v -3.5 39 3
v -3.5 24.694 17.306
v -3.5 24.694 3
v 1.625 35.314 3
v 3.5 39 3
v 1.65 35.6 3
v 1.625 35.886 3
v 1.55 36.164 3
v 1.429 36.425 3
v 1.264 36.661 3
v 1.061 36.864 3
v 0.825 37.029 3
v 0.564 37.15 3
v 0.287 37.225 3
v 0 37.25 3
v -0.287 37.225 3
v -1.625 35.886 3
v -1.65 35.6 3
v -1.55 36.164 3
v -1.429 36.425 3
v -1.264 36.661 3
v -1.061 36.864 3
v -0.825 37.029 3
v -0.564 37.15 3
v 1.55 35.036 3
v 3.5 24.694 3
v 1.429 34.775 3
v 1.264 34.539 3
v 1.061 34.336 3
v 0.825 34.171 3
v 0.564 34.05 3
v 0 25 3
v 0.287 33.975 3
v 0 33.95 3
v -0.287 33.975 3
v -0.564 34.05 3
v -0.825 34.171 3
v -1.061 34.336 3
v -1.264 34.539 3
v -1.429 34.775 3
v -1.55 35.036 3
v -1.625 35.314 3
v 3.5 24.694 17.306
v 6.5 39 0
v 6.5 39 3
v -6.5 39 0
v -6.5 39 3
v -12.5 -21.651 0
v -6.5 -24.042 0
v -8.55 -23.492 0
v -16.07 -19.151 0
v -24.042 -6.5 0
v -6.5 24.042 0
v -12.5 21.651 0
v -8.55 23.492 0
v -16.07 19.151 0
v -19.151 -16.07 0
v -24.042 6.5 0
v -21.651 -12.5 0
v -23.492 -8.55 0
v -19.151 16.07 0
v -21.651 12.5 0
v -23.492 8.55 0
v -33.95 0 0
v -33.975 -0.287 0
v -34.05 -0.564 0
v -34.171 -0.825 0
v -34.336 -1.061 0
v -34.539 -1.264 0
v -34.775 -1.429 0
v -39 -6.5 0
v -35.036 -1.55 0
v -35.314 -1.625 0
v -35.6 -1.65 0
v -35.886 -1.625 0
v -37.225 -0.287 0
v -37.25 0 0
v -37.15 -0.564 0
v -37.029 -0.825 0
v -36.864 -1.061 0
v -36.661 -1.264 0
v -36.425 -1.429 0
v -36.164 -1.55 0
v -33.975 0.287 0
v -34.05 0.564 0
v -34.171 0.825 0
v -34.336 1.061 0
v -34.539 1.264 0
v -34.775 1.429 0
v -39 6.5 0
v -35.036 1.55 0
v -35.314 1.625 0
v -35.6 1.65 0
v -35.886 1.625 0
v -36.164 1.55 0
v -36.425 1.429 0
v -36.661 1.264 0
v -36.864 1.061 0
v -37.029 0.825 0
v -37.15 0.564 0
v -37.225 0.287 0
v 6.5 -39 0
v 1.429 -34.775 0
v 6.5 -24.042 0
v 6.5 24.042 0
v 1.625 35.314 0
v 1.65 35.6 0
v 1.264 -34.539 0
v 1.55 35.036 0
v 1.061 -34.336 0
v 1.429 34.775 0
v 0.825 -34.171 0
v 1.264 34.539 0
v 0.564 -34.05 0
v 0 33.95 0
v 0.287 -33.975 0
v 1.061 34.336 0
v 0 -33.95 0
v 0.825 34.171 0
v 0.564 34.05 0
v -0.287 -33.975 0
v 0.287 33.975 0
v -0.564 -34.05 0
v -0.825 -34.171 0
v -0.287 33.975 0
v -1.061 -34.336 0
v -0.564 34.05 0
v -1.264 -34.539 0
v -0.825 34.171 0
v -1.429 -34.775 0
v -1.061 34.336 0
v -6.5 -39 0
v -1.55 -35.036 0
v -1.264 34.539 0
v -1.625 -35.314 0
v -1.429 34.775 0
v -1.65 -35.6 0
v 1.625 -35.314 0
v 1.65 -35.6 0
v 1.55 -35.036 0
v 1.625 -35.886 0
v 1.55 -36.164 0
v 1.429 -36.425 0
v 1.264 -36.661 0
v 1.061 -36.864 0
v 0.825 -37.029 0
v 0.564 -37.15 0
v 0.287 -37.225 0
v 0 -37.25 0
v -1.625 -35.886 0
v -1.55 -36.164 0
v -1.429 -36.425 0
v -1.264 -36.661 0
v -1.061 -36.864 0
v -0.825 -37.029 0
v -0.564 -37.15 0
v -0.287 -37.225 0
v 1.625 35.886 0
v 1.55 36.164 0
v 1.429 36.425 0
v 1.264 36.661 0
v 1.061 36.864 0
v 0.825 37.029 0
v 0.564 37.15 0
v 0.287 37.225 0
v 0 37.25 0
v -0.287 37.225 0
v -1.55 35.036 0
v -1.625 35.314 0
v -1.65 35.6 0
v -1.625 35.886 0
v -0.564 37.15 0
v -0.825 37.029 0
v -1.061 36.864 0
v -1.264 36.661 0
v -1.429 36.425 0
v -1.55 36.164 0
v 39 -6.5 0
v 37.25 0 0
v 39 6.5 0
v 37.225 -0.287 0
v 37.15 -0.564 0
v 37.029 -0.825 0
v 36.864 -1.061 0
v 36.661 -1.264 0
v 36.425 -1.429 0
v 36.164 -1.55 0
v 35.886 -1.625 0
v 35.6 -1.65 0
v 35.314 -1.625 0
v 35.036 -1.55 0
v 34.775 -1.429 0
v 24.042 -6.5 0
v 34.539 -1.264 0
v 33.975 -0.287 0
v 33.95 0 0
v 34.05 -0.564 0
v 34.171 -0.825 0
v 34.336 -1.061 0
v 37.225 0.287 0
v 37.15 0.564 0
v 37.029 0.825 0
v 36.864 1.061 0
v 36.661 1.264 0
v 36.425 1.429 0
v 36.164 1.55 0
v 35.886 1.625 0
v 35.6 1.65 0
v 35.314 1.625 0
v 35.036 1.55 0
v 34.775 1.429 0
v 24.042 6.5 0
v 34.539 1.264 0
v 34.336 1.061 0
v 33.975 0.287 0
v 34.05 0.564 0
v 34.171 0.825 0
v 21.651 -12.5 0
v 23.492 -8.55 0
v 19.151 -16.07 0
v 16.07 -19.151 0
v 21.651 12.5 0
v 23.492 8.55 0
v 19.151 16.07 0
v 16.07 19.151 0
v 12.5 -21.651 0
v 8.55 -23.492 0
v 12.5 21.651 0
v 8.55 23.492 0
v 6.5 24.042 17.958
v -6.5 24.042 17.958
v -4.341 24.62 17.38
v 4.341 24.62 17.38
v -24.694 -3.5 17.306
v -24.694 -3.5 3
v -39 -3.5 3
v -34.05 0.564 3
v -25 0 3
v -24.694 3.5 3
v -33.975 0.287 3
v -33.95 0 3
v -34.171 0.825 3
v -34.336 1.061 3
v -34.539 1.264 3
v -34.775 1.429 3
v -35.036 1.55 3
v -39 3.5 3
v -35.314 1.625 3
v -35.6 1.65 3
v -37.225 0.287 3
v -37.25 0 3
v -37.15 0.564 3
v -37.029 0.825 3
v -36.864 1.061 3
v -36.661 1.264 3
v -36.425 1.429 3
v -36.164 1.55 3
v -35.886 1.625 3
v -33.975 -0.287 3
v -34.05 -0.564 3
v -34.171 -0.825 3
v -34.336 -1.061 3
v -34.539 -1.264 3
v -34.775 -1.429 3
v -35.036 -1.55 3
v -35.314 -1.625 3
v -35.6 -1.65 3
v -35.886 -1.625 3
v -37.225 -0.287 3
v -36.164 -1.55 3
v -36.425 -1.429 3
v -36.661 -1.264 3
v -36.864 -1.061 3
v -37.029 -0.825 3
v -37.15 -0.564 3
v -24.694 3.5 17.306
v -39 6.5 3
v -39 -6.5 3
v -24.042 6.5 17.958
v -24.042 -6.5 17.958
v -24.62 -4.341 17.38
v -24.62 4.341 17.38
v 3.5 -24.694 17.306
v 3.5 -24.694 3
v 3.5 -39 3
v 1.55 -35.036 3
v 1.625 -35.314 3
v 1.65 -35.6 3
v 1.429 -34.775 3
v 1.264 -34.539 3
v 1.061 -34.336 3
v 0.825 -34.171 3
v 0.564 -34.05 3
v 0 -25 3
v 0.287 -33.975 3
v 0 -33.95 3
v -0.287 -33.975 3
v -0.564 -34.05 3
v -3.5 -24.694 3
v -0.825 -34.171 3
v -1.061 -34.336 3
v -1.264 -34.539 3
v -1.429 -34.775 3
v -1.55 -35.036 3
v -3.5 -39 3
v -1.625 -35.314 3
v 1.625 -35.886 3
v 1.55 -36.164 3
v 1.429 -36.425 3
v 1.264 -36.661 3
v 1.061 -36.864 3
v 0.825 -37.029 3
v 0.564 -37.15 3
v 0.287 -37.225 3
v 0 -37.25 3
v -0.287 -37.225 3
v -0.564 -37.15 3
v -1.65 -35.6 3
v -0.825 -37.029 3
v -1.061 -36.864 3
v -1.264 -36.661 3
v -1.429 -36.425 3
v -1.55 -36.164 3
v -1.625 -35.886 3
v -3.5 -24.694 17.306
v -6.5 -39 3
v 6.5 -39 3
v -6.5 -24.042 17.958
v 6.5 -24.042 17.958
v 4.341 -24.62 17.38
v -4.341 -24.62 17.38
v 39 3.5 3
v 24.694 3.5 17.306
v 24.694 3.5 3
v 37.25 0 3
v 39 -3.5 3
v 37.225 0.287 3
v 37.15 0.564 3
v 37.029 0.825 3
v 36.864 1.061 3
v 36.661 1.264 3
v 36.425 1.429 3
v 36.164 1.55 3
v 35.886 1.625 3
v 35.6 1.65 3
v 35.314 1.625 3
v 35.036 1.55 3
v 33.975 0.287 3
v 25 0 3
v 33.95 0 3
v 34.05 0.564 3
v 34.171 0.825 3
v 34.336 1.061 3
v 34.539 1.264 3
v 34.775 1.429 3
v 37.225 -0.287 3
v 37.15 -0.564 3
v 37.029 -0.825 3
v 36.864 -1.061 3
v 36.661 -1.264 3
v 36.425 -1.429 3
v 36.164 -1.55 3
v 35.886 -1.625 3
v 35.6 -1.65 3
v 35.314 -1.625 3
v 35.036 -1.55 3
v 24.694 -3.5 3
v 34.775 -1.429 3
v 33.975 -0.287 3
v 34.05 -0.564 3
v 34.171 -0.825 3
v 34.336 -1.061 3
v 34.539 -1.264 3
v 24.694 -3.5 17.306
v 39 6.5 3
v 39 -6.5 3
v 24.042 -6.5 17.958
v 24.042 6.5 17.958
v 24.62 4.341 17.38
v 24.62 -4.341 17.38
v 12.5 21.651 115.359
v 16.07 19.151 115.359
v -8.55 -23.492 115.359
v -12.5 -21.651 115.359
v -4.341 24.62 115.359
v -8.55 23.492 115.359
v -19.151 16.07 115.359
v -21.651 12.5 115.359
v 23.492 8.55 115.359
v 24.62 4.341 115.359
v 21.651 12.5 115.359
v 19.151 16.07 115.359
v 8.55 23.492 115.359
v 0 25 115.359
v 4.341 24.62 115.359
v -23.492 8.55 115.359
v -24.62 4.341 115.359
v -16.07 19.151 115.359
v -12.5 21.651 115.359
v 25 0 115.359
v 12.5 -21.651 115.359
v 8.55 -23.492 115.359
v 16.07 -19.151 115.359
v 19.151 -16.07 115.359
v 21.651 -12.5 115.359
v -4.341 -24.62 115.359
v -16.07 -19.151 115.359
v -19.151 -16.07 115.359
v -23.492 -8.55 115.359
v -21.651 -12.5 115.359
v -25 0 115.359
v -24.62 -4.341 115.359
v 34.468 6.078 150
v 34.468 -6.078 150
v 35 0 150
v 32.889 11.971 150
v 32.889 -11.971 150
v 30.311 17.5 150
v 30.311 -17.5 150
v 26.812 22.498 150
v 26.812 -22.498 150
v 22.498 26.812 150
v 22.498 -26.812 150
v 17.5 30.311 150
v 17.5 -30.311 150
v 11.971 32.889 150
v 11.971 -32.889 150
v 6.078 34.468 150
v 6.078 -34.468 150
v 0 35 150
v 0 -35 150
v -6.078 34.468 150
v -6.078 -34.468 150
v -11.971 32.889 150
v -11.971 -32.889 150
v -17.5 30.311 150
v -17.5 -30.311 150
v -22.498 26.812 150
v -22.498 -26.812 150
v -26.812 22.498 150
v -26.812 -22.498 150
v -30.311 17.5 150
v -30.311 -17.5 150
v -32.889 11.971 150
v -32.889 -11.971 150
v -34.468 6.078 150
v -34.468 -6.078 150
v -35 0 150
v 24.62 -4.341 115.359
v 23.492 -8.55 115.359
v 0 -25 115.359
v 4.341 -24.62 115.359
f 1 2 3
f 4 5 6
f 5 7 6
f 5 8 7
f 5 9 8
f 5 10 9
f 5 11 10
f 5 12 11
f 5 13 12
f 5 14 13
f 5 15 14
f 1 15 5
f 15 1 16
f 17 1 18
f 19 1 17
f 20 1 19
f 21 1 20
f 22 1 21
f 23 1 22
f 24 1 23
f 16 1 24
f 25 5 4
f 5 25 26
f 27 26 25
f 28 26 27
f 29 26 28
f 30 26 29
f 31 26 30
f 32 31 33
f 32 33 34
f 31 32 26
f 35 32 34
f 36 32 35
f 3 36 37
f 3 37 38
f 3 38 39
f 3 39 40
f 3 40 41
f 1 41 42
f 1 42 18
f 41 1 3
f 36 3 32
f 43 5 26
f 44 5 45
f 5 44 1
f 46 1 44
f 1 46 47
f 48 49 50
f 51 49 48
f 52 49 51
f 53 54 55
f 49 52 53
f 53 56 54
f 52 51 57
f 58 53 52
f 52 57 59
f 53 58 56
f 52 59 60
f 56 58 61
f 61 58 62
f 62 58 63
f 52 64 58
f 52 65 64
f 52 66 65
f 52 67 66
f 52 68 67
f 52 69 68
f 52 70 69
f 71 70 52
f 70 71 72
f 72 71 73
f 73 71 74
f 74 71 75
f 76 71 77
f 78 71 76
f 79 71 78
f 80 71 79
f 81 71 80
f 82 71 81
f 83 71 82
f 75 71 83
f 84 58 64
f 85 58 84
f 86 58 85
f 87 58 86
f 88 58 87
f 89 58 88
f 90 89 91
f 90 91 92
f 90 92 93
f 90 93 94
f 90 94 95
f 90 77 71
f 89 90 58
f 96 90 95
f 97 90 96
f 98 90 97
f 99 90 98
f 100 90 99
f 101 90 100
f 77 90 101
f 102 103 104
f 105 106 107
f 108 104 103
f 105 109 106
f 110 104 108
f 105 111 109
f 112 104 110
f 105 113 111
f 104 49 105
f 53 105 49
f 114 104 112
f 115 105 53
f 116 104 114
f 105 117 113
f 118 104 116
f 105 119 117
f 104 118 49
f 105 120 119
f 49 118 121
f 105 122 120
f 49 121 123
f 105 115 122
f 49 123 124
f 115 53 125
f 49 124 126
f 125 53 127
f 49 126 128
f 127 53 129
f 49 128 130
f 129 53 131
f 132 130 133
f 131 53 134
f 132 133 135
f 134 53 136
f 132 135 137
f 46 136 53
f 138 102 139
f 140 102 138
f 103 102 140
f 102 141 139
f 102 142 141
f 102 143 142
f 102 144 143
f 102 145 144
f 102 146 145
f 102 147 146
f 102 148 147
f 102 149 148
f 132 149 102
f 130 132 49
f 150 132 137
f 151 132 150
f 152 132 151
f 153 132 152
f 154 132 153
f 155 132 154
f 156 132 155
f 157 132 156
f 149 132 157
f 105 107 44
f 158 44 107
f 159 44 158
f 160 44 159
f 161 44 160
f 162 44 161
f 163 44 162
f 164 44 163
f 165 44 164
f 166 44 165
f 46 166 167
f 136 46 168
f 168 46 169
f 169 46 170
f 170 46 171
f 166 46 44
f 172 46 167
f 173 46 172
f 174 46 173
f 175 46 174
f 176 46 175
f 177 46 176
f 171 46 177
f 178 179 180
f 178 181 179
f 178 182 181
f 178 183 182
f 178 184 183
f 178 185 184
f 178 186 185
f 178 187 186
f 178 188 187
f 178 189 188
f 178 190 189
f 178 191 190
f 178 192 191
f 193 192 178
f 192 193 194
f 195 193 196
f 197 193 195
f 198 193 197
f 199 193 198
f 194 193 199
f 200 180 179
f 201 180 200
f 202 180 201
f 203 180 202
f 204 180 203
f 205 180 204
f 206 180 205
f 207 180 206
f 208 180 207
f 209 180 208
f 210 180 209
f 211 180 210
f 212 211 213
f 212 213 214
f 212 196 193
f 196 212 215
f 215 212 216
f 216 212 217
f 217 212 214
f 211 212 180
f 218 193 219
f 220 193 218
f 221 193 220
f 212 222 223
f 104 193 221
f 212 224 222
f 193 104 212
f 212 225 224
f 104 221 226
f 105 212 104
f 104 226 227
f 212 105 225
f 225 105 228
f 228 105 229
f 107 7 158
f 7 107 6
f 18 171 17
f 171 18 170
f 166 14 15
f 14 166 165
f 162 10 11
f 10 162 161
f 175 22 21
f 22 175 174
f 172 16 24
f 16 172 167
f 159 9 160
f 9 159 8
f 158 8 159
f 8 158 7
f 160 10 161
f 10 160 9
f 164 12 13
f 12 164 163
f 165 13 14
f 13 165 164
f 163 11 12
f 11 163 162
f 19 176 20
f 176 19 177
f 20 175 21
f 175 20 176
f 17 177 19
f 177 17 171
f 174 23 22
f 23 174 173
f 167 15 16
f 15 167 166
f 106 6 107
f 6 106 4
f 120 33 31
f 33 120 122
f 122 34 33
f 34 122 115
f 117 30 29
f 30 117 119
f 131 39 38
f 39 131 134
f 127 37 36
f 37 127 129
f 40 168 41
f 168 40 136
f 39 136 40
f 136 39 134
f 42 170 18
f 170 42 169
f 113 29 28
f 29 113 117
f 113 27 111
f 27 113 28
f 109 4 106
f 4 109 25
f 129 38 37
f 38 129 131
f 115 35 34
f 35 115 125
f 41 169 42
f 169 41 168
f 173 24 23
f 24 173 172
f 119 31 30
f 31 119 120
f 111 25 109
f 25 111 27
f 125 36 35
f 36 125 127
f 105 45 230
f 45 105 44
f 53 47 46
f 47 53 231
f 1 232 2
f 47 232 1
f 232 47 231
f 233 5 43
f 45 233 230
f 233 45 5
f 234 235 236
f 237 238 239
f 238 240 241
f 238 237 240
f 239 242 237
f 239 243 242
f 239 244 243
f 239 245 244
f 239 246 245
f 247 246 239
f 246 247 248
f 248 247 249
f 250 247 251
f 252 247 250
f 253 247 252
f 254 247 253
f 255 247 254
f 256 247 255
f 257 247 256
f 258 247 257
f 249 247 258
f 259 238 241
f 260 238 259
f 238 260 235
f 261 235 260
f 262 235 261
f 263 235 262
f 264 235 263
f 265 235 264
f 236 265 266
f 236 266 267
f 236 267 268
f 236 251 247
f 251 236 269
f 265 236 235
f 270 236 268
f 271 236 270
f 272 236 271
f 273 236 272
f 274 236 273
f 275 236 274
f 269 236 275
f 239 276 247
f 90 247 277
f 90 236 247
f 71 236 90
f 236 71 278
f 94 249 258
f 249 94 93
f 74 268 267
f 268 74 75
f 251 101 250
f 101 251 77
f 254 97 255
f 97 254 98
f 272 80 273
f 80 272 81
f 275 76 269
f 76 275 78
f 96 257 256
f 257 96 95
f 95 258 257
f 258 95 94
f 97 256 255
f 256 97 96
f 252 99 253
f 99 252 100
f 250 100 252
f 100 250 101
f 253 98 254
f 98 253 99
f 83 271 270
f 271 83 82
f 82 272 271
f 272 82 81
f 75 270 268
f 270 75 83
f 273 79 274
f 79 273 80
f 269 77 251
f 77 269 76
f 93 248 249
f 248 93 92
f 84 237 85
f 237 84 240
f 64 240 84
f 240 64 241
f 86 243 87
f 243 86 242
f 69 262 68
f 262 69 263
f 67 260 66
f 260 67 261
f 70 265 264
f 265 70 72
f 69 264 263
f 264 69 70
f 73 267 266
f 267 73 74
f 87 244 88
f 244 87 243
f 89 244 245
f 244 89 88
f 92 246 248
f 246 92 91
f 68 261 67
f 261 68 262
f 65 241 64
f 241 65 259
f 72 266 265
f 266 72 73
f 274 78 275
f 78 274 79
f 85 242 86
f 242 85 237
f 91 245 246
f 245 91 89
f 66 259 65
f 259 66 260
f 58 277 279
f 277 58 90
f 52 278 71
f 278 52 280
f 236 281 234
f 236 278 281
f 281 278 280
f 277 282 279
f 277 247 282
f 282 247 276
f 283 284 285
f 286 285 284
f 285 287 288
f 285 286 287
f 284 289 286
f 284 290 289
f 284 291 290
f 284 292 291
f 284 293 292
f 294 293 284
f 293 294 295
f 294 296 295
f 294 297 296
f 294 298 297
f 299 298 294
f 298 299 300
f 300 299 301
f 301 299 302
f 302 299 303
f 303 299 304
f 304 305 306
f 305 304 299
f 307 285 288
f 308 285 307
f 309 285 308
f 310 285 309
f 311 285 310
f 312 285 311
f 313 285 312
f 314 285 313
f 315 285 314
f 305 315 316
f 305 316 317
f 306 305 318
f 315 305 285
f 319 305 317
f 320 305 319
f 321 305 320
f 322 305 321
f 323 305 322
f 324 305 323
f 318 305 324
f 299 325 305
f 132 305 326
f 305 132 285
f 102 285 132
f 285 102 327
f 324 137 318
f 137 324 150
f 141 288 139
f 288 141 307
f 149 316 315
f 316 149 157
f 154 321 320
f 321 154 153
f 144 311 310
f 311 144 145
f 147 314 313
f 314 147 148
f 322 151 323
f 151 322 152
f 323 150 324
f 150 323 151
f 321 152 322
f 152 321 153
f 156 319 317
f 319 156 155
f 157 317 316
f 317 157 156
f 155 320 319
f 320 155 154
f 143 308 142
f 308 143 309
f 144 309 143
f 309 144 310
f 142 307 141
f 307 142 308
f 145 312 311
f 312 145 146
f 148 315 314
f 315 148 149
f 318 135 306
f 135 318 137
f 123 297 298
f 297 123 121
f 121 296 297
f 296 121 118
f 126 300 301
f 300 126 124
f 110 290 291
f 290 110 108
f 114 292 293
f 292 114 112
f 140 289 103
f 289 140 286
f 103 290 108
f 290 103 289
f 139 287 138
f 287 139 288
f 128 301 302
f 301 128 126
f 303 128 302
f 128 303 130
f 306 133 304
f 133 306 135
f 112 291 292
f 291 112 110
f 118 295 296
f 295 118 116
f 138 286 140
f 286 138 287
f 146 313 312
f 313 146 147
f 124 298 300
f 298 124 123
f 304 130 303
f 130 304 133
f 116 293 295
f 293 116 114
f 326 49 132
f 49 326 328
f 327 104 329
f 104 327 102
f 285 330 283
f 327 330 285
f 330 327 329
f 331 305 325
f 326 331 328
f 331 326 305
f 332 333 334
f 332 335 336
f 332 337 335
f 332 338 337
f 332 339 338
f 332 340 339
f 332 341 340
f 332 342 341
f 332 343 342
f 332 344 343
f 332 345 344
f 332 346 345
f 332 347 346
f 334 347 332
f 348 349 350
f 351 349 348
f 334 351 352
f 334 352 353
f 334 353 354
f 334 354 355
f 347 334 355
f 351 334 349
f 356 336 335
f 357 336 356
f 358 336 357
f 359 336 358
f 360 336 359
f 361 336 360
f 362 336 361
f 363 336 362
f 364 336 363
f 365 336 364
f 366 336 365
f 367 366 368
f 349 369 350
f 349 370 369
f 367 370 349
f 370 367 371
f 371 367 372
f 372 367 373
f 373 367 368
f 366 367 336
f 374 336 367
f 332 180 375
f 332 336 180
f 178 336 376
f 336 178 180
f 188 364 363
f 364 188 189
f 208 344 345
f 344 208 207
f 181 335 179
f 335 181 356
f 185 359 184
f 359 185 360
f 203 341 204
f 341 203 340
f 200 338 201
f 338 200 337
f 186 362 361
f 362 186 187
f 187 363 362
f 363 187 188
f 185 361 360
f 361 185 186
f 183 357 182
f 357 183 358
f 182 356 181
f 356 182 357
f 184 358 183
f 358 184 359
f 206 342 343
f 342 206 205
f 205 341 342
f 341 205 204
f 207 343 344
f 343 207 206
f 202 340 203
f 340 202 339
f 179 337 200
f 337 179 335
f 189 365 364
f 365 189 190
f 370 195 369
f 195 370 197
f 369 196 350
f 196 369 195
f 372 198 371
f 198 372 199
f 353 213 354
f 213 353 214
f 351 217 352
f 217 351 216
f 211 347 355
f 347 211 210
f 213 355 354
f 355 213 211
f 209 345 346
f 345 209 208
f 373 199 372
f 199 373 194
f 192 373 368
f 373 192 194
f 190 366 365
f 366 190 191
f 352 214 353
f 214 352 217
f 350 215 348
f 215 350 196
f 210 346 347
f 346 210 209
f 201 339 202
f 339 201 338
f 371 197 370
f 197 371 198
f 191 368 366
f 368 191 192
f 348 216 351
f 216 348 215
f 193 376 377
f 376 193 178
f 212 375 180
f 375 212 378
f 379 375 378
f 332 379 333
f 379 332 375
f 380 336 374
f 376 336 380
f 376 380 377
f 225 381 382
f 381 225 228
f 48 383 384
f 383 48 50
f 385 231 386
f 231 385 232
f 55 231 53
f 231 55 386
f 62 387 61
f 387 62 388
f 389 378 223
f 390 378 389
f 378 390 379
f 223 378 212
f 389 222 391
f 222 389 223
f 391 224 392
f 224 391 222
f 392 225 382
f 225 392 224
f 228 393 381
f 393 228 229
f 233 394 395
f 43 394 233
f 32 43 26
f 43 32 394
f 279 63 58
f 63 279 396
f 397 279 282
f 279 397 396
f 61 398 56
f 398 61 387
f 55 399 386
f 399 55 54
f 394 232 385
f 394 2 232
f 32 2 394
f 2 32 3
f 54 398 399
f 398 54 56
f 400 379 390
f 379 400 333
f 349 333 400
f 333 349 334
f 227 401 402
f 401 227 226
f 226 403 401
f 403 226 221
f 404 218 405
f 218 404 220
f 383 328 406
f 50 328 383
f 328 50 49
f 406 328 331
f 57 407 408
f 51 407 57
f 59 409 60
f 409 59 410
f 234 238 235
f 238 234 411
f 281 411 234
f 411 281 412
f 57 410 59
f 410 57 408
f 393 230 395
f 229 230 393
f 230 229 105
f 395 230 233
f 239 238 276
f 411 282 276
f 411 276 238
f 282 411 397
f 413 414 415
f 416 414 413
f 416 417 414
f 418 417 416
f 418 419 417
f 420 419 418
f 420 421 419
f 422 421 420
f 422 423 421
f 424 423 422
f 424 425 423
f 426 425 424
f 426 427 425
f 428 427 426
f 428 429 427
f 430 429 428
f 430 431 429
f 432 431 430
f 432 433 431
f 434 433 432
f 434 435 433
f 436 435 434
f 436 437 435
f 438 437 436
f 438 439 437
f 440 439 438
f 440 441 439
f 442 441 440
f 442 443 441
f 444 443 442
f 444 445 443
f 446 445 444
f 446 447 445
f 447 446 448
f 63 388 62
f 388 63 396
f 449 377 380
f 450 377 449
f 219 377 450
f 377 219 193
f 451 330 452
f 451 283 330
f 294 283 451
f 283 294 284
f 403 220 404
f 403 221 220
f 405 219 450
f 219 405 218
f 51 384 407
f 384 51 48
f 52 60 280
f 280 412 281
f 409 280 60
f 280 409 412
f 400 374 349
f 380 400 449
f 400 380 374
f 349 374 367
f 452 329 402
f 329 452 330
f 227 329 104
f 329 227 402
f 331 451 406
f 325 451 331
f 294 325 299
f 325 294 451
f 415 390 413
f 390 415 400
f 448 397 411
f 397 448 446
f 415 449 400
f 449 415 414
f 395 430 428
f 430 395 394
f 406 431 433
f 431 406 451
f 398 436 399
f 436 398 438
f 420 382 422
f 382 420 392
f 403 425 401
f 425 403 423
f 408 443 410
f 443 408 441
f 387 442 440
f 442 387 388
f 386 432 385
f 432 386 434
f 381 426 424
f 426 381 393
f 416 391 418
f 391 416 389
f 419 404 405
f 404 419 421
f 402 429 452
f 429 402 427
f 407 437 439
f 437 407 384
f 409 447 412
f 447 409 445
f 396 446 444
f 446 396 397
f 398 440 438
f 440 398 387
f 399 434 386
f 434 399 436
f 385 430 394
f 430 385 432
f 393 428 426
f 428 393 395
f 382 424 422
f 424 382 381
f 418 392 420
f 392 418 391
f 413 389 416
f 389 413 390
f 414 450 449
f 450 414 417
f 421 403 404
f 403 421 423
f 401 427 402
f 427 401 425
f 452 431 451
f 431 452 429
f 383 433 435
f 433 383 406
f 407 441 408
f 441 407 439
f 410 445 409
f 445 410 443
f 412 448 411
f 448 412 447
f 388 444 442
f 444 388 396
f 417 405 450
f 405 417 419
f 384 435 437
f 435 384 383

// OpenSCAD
ht = 150;       // height of the leg
diam = 50;      // diameter of the main cylinder

brackets = 4;   // how many screw brackets to create

brhole  = 3.3;  // diameter of the screw hole
brwall  = 3;    // thickness of the bracket walls
brx = 7;        // how wide to make the bracket
bry = 14;       // how long to make the bracket (only half will be outside of the cylinder)
foot = 10;      // how far the foot extends from the main cylinder

$fn = 36;


// Bracket with rounded supports.  Math is a little off, so
// it doesn't really center up properly.
module rounded_bracket () {
    // bottom plate
    translate([0,0,brwall/2]){
        difference(){
            cube([brx, bry*2, brwall], center = true);
            translate([0, bry - (brhole/2) - (brx/4), 0]){
                cylinder(d = brhole, h = brwall + 1, center = true);
            }
        }
    }
    
    difference(){

        union(){
            // left and right side walls
            translate([(brx/2)+(brwall/2),0,bry]){
                cube([brwall, bry*2, bry*2], center = true);
            }
            translate([-(brx/2)-(brwall/2),0,bry]){
                cube([brwall, bry*2, bry*2], center = true);
            }
        }
        // round out the side walls
        translate([0,bry,bry+(brwall/2)]){
            rotate([0,90,0]){
                #cylinder(h = (brx + 2*brwall + 1), d = (2*bry)-brwall, center = true);
            }
        }
        // trim off the overhead left from the cylinder above
        // the cube is slightly oversized to make 
        translate([0,(bry/2) + (brwall/4),bry*2 - (brx + 2*brwall + 1)/2 - (brwall/4)]){
            #cube([(brx + 2*brwall + 1), (bry - (brwall/2)), (bry - (brwall/2))], center = true);
        }
    }
}


module bracket () {
    // bottom plate
    translate([0,0,brwall/2]){
        difference(){
            cube([brx, bry*2, brwall], center = true);
            translate([0, bry - (brhole/2) - (brx/4), 0]){
                cylinder(d = brhole, h = brwall + 1, center = true);
            }
        }
    }
    
    difference(){

        union(){
            // left and right side walls
            translate([(brx/2)+(brwall/2),0,bry+(brwall/2)]){
                cube([brwall, bry*2, brwall+(bry*2)], center = true);
            }
            translate([-(brx/2)-(brwall/2),0,bry+(brwall/2)]){
                cube([brwall, bry*2, brwall+(bry*2)], center = true);
            }
        }
        
        translate([0,bry,(2*bry)+brwall]){
            rotate([45,0,0]){
             cube([brx + 2*brwall + 1, bry*2/(sin(45)), bry*2/(sin(45))], center = true);   
            }
        }

    }
}
//bracket();


cylinder(h = ht, d = diam);

footht = tan(60)*(diam + (2*foot));
translate([0,0,ht - footht]){
    cylinder(r1 = 0, d2 = (diam + (2*foot)),
             h = footht);
}

for (i = [0:(brackets-1)]){
    rotate([0,0,i*(360/brackets)]){
        translate([0,diam/2,0]){
            bracket();
        }
    }
}
